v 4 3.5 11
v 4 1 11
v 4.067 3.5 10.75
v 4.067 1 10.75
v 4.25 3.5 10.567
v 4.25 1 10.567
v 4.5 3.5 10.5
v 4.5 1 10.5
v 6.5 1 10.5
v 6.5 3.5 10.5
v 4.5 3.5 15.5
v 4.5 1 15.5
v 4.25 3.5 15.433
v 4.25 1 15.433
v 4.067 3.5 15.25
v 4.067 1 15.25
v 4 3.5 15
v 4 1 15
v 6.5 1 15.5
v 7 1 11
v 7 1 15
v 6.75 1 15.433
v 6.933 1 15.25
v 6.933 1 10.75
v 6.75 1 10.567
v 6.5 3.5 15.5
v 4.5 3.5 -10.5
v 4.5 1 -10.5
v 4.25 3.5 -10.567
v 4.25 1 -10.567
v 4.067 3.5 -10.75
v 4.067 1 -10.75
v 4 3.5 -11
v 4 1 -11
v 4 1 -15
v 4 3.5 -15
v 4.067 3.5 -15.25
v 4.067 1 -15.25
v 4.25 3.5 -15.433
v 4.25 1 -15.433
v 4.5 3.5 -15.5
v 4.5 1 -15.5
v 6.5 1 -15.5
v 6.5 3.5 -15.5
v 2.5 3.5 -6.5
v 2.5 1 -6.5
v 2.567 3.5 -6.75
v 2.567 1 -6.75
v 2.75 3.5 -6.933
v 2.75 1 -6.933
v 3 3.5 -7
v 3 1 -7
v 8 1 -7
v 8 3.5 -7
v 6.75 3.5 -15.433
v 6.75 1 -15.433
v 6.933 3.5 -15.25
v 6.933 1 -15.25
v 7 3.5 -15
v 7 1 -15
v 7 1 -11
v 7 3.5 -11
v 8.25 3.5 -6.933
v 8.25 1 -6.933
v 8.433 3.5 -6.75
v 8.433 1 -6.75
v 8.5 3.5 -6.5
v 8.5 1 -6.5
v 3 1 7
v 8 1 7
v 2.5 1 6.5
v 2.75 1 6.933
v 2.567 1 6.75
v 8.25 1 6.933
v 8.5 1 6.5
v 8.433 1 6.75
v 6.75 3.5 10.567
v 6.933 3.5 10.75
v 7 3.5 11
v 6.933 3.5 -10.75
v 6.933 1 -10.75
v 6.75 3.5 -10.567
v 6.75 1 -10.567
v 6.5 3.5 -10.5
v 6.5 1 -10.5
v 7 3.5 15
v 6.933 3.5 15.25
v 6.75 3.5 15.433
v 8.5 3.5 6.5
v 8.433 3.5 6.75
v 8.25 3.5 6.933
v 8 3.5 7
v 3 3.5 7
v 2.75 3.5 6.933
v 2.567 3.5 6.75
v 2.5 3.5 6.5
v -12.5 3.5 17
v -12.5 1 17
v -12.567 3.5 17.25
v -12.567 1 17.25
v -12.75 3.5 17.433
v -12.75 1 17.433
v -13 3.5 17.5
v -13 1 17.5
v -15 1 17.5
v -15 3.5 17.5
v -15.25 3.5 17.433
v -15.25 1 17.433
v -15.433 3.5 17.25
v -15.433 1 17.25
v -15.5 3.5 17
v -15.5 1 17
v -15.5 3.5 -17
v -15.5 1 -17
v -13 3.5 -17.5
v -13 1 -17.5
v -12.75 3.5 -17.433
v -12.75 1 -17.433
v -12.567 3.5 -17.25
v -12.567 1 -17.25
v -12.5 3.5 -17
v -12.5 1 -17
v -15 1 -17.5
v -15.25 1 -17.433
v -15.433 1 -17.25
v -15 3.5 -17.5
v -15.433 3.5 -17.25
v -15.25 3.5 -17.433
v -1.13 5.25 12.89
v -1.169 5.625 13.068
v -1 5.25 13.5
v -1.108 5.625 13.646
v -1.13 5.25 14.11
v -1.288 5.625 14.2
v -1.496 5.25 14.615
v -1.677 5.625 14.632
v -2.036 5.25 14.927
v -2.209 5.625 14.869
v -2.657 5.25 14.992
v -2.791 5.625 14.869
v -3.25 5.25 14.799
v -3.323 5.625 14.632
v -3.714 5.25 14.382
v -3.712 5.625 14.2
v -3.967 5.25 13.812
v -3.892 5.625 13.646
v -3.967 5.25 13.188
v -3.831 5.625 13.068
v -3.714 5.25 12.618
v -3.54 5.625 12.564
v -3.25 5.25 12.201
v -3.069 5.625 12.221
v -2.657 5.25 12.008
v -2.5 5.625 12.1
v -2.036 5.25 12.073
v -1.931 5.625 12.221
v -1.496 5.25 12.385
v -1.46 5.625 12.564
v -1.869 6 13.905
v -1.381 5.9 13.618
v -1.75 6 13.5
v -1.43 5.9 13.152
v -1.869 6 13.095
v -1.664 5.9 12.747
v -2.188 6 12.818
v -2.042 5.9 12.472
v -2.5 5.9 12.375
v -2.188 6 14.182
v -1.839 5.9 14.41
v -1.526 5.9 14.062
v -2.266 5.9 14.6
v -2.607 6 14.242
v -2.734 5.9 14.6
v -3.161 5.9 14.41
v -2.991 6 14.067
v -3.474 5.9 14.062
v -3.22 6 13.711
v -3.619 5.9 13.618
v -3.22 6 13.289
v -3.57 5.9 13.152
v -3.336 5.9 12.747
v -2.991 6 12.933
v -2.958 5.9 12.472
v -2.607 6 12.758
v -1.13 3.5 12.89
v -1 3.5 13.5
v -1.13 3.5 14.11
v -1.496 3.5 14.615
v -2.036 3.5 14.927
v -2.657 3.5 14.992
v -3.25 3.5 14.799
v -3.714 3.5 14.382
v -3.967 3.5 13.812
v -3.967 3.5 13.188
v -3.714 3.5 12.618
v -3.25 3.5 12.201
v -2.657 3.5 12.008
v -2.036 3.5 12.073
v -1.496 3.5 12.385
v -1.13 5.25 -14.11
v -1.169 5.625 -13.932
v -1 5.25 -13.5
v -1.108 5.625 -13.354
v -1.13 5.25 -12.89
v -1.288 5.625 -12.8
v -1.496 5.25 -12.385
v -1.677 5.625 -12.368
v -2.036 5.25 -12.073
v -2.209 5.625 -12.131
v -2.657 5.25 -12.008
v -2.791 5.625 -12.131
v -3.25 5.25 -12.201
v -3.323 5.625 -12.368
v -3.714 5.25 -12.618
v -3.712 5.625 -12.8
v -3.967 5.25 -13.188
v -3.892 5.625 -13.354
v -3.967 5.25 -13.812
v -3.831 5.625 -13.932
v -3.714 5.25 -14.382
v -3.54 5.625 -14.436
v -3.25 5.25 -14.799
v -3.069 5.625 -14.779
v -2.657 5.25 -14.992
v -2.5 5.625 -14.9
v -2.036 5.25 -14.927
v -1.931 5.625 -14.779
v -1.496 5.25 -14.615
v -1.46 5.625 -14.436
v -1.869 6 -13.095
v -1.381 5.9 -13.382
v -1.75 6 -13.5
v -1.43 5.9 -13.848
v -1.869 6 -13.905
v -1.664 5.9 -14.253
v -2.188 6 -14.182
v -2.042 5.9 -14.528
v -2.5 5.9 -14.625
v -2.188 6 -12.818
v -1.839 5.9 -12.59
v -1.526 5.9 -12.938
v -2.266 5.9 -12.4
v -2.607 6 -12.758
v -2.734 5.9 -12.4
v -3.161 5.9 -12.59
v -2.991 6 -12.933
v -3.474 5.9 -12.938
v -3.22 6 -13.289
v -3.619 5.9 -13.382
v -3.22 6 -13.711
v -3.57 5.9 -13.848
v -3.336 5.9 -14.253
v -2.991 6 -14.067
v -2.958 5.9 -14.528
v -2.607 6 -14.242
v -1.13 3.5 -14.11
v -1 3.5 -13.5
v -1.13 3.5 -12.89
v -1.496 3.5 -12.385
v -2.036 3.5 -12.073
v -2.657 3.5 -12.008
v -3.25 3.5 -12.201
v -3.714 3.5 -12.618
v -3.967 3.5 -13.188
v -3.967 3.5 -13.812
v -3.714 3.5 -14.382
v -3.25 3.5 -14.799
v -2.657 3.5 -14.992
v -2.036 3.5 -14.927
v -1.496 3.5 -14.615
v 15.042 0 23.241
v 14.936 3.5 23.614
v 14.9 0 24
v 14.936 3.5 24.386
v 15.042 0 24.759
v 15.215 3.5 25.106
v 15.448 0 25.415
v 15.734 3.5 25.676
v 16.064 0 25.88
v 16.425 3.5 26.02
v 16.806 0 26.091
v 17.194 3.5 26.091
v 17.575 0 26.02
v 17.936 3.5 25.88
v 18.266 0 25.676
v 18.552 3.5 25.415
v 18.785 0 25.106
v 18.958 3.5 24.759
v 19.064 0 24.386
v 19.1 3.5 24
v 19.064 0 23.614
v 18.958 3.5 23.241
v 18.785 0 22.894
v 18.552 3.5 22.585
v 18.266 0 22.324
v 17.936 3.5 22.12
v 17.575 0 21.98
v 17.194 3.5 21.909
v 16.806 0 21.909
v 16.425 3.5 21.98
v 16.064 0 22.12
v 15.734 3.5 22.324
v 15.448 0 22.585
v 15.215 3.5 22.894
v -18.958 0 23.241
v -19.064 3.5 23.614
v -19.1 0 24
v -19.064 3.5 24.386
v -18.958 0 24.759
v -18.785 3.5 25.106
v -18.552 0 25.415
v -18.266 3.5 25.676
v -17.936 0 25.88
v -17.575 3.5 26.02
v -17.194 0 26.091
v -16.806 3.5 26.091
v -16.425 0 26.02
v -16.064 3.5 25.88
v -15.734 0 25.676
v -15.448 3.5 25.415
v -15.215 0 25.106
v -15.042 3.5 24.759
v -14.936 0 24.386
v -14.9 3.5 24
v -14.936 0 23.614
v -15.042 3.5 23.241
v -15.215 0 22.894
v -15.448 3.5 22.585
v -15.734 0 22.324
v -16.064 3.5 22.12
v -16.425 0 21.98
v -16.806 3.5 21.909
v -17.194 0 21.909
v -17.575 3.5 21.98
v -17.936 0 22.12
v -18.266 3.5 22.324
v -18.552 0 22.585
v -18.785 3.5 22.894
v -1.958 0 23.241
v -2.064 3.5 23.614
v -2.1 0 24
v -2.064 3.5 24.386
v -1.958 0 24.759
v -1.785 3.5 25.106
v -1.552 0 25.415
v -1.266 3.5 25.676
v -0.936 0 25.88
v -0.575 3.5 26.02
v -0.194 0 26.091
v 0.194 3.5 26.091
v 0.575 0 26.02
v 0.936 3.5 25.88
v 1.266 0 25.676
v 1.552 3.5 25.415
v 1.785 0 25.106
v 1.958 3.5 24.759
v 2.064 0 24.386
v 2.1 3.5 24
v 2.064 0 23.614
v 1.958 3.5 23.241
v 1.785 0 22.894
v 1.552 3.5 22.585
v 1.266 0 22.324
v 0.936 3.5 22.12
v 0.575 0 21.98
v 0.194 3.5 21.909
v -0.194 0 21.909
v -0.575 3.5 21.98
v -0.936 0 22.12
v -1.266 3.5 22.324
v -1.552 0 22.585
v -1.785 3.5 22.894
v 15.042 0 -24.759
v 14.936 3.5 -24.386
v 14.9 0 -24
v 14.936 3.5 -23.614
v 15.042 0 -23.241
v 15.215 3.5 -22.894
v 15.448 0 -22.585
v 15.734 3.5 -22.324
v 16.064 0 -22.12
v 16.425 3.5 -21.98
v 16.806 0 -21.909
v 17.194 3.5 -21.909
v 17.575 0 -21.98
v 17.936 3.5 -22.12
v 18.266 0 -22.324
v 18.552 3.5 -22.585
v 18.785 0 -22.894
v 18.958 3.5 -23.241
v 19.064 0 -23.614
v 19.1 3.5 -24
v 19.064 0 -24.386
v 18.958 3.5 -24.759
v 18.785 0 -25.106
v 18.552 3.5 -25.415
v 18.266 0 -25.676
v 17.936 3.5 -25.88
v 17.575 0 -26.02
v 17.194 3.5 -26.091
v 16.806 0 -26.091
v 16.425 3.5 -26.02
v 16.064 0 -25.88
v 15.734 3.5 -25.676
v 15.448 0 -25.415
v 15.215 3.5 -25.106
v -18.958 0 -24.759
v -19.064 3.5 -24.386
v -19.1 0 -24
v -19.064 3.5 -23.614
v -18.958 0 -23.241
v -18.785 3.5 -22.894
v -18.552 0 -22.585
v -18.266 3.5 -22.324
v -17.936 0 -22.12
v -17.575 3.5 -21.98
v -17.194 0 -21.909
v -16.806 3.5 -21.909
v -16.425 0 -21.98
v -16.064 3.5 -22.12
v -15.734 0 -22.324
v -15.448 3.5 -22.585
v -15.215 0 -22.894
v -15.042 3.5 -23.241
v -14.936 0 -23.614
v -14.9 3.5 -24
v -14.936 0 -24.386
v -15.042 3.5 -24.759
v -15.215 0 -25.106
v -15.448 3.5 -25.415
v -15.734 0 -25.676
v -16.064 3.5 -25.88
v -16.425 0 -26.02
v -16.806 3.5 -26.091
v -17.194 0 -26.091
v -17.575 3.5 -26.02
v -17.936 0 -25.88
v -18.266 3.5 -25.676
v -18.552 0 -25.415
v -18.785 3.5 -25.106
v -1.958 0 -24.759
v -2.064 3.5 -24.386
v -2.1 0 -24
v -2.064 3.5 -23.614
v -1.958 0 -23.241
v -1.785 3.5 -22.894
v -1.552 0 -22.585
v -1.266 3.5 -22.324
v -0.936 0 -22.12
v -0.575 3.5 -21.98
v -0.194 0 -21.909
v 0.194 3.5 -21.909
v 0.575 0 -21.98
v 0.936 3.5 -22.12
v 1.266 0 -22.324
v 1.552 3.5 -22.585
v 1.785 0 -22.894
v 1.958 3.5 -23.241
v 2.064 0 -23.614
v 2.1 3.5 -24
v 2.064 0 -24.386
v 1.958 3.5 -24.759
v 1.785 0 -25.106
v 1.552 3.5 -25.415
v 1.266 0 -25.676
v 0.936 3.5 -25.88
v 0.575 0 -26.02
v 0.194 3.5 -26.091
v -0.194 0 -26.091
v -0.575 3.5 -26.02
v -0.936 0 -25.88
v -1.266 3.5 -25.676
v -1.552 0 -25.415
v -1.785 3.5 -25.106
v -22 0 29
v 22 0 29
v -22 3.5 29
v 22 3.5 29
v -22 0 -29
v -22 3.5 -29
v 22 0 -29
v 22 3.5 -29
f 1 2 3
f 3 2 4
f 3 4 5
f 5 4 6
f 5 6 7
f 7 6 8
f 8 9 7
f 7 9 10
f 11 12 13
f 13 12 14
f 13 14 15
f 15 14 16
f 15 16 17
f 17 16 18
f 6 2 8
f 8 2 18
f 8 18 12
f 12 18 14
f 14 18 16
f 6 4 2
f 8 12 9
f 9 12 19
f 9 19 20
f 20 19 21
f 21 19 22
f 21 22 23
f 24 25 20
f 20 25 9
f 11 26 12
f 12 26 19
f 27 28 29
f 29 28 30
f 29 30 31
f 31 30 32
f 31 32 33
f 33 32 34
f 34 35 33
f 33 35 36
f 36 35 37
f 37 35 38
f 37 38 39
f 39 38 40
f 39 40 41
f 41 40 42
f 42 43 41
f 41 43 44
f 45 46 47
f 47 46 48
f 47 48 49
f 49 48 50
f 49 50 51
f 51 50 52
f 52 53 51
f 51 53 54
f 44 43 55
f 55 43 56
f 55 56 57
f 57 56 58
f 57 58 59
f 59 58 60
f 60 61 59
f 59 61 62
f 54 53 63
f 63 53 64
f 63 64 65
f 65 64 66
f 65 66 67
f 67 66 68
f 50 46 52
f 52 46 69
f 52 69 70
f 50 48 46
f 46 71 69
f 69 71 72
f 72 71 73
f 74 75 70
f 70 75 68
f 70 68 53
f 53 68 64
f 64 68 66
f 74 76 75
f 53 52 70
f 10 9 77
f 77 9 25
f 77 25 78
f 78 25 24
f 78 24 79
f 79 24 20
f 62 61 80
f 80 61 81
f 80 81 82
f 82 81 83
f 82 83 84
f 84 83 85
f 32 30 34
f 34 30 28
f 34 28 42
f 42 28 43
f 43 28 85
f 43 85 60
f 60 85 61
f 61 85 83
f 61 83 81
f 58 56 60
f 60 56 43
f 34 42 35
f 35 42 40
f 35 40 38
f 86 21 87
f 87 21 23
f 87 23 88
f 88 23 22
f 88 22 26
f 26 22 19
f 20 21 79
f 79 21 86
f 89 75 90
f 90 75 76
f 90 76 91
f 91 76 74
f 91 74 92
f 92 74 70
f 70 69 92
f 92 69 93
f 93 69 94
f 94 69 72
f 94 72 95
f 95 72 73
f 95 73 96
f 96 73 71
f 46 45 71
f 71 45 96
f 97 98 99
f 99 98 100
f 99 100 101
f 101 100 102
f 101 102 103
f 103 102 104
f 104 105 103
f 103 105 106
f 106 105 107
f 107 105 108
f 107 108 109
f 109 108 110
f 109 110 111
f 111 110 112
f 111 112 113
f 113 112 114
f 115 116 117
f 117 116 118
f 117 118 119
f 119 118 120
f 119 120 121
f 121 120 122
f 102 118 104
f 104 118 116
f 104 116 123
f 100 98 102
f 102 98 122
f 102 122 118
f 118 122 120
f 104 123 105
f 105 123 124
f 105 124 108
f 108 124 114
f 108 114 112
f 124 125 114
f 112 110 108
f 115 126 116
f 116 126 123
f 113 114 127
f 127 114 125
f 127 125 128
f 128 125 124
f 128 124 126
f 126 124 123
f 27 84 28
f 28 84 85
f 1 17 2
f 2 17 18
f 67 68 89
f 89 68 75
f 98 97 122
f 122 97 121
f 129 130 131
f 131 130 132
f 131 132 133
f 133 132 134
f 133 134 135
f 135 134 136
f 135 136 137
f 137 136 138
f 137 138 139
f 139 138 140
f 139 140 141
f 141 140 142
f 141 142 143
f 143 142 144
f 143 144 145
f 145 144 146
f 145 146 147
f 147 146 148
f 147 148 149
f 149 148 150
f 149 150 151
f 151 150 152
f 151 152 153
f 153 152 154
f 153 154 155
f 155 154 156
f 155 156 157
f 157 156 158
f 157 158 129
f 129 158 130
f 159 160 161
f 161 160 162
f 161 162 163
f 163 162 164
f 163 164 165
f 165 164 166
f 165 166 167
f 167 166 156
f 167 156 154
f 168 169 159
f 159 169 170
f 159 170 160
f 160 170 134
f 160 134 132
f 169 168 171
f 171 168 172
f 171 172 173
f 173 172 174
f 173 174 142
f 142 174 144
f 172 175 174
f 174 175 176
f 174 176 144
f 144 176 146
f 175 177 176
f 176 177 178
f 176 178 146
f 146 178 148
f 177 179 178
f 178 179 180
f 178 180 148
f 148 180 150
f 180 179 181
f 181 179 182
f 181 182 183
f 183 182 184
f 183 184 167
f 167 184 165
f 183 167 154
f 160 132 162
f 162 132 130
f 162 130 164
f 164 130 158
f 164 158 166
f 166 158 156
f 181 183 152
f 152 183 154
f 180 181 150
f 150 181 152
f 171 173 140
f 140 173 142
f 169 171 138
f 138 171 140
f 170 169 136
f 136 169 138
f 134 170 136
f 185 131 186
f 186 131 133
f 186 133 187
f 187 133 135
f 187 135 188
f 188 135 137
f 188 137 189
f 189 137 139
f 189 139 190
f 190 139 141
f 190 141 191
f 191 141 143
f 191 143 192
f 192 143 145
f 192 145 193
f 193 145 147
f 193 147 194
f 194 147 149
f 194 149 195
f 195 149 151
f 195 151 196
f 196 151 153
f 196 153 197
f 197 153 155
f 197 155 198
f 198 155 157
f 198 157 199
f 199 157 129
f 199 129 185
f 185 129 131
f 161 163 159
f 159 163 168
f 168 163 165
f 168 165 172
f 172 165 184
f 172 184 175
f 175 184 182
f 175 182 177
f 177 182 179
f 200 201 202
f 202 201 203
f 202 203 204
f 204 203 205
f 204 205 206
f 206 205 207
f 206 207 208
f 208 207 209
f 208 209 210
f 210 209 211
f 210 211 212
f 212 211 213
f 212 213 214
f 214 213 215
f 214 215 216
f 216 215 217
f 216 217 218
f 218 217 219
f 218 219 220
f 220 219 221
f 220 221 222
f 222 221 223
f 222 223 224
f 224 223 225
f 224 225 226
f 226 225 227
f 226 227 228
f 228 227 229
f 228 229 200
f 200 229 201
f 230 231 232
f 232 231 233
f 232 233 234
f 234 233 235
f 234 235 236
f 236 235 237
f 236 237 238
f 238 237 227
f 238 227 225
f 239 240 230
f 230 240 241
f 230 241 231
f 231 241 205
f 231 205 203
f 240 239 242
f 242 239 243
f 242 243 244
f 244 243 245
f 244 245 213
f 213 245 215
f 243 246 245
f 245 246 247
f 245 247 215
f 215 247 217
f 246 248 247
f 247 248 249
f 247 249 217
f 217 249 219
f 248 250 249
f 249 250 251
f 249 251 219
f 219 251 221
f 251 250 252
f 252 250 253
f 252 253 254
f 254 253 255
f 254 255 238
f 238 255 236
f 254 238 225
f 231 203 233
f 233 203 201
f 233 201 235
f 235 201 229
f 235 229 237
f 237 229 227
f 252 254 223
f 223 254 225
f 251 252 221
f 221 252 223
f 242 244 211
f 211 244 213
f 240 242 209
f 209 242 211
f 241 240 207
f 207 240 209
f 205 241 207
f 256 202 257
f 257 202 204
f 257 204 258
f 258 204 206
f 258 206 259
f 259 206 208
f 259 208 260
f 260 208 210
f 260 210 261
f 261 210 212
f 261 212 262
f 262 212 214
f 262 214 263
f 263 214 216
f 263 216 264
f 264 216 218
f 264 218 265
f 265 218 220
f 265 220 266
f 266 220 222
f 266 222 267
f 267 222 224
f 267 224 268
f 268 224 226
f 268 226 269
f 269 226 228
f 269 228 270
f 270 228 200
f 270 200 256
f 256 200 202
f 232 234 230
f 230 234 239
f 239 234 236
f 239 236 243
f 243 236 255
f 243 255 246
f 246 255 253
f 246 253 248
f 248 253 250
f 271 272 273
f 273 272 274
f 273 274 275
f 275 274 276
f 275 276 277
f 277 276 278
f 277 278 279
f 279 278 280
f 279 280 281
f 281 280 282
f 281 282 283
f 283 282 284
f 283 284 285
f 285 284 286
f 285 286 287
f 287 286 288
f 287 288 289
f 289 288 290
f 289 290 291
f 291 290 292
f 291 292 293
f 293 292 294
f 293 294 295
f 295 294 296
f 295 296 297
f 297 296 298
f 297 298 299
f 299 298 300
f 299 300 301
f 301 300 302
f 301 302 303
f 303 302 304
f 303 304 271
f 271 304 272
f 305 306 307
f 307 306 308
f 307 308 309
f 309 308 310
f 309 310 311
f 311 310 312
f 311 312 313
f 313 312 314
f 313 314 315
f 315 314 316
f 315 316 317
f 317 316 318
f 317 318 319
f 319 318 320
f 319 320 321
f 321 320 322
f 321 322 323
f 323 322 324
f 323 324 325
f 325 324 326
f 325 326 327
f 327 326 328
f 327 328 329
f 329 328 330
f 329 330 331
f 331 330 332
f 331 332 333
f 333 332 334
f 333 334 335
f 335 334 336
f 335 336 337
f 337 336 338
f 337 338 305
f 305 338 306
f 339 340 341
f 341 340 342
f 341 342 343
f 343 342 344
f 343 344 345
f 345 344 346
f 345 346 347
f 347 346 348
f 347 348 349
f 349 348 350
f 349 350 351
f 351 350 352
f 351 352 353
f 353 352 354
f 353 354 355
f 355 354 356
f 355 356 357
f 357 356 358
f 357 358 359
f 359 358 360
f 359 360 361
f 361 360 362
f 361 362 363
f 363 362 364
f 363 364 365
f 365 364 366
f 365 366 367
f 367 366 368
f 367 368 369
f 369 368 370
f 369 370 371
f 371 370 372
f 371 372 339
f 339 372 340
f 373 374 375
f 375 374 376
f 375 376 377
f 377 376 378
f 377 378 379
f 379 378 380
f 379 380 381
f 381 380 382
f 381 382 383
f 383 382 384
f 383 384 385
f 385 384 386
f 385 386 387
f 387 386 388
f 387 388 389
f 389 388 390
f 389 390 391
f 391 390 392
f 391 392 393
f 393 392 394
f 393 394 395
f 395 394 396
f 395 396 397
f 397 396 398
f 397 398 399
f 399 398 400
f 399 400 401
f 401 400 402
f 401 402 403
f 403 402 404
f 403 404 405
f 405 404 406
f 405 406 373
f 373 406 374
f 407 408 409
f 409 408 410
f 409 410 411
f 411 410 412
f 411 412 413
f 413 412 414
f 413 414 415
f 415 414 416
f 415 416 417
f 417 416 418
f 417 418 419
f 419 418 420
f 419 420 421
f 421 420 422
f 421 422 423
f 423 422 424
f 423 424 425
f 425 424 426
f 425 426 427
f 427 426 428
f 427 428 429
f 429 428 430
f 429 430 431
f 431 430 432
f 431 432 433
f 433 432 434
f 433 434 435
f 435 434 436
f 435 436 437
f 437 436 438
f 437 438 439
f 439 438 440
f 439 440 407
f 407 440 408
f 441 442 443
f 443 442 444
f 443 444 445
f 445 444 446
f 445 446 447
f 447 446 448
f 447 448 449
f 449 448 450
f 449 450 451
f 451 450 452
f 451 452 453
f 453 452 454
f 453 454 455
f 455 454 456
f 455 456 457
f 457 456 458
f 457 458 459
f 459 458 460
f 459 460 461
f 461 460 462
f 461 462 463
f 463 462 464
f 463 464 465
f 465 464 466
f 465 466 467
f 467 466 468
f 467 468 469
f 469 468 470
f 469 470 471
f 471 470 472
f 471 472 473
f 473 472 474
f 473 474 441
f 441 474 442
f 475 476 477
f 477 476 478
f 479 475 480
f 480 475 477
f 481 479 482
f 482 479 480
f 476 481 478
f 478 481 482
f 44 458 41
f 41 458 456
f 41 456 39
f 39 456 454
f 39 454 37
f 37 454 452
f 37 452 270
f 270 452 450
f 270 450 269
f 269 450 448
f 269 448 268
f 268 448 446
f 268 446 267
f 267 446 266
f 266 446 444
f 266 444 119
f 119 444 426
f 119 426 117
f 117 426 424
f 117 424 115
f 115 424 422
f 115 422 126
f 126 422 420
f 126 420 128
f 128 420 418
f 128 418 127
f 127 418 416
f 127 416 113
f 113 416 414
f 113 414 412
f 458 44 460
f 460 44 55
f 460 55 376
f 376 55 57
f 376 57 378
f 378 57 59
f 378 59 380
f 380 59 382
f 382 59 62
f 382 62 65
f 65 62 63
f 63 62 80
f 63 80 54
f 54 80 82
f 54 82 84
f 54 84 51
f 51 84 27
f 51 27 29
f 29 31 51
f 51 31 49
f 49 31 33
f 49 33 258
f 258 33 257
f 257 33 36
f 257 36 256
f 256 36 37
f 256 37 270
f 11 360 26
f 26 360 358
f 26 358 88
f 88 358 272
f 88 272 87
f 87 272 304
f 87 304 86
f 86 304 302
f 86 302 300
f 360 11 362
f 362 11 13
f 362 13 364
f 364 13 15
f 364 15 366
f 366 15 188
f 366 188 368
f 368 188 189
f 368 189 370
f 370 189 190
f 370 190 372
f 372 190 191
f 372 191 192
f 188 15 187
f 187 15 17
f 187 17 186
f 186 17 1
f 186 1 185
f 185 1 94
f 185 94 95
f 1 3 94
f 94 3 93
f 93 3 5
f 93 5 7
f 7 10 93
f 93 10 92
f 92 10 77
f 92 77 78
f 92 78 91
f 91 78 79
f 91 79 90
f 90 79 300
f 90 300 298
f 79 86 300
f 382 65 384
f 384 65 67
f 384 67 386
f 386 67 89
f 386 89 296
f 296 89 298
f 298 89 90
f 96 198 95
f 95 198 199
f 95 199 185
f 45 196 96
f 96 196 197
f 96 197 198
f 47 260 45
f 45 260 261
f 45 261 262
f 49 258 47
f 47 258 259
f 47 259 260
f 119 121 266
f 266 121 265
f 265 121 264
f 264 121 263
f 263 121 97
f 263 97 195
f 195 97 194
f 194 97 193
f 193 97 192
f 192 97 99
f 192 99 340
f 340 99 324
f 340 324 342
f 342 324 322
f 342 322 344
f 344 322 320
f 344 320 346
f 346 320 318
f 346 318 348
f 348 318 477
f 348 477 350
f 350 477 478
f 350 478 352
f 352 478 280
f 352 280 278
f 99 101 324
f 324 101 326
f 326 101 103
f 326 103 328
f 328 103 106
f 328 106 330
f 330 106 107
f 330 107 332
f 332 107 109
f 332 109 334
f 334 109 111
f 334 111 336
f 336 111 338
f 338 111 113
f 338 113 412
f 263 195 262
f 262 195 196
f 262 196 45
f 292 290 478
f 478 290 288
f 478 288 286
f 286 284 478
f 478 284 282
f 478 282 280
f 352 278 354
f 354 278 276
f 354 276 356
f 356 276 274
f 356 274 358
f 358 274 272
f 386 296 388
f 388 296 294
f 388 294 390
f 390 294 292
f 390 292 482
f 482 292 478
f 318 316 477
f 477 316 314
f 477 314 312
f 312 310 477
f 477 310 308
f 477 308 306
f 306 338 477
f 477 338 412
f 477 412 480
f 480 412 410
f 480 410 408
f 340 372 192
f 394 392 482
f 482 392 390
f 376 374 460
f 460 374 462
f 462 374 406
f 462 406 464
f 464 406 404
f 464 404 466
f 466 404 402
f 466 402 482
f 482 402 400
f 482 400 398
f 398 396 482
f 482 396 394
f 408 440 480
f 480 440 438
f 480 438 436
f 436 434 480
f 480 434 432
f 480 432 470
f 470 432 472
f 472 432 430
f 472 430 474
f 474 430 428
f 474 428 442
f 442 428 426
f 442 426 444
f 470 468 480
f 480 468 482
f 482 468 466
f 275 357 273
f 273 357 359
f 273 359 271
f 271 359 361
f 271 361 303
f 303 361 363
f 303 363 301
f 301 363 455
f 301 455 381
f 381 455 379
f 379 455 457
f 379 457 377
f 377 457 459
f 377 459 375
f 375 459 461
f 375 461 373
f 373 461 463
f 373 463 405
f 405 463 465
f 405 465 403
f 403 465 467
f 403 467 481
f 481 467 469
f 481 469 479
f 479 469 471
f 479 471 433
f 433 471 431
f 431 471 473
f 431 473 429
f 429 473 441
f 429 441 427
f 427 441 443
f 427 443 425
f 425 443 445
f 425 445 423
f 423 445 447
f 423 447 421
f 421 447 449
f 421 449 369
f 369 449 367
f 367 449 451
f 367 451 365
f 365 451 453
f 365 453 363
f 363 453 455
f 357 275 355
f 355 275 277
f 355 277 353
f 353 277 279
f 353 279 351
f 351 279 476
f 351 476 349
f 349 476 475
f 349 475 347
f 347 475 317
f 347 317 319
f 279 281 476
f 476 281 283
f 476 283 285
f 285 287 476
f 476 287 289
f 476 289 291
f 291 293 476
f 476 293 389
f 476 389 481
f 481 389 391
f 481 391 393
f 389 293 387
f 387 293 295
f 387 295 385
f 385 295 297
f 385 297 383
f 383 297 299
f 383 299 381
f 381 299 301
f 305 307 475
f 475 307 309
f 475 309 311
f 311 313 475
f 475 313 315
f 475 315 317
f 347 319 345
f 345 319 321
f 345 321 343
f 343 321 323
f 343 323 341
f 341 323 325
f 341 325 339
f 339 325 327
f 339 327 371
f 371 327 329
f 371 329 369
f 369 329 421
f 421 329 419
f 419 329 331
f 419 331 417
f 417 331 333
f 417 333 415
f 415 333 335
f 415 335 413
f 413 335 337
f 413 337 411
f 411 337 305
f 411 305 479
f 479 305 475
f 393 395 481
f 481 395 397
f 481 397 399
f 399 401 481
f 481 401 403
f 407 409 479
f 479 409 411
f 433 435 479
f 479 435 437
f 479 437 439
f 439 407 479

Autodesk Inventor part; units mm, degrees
ref_plane "YZ Plane" through (0, 0, 0) normal (1, 0, 0) x (0, 1, 0)
ref_plane "XZ Plane" through (0, 0, 0) normal (0, 1, 0) x (-1, 0, 0)
ref_plane "XY Plane" through (0, 0, 0) normal (0, 0, 1) x (1, 0, 0)
sketch "Sketch1" plane through (0, 0, 0) normal (0, 1, 0) x (-1, 0, 0)
  line L0 (22, 29) -> (-22, 29)
  line L1 (-22, 29) -> (-22, -29)
  line L2 (-22, -29) -> (22, -29)
  line L3 (22, -29) -> (22, 29)
  point P0 (0, 0)
  point P1 (0, -29)
  dimension "d2" = 44
  dimension "d3" = 58
extrude "Extrusion1" add sketch "Sketch1" along normal blind 3.5
sketch "Sketch2" plane through (0, 3.5, 0) normal (0, 1, 0) x (1, 0, 0)
  line L0 (0, 40.6) -> (0, -40.6) projected
  line L1 (22, 29) -> (-22, 29) projected
  point P0 (0, 0)
  point P1 (0, 24)
  dimension "d22" = 5
hole "Hole1" at (0, 3.5, -24) direction (0, -1, 0) diameter 4.2 end through all
pattern_linear "Rectangular Pattern1" count 2 spacing 17 along (-1, 0, 0) count 2 spacing 17 along (1, 0, 0) of "Hole1"
mirror "Mirror1" about plane through (0, 0, 0) normal (0, 0, 1) of "Hole1", "Rectangular Pattern1"
sketch "Sketch3" plane through (0, 3.5, 0) normal (0, 1, 0) x (1, 0, 0)
  circle A0 centre (-2.5, 13.5) radius 1.5
  line L0 (0, 40.6) -> (0, -40.6) projected
  line L1 (-30.8, 0) -> (30.8, 0) projected
  circle A1 centre (-2.5, -13.5) radius 1.5
  point P0 (0, 0)
  dimension "d29" = 3
  dimension "d30" = 2.5
  dimension "d31" = 13.5
extrude "Extrusion2" add sketch "Sketch3" along normal blind 2.5
fillet "Fillet1" radius 0.75 2 edges at (-4, 6, -13.5) (-4, 6, 13.5)
sketch "Sketch4" plane through (0, 0, 0) normal (0, 0, 1) x (1, 0, 0)
  line L0 (-15.5, 3.5) -> (-12.5, 3.5)
  line L1 (-12.5, 3.5) -> (-12.5, 1)
  line L2 (-12.5, 1) -> (-15.5, 1)
  line L3 (-15.5, 1) -> (-15.5, 3.5)
  line L4 (-22, 3.5) -> (22, 3.5) projected
  point P0 (0, 0)
  point P1 (0, 3.5)
  point P2 (-14, 3.5)
  dimension "d35" = 2.5
  dimension "d36" = 3
  dimension "d39" = 14
extrude "Extrusion3" cut sketch "Sketch4" along normal mid plane 35
sketch "Sketch5" plane through (0, 0, 0) normal (0, 0, 1) x (1, 0, 0)
  line L0 (2.5, 3.5) -> (8.5, 3.5)
  line L1 (8.5, 3.5) -> (8.5, 1)
  line L2 (8.5, 1) -> (2.5, 1)
  line L3 (2.5, 1) -> (2.5, 3.5)
  line L4 (-22, 3.5) -> (22, 3.5) projected
  line L5 (-2.5, 7.2) -> (-2.5, -1.2) projected
  point P0 (0, 0)
  point P1 (5.5, 3.5)
  dimension "d40" = 6
  dimension "d41" = 2.5
  dimension "d42" = 8
extrude "Extrusion4" cut sketch "Sketch5" along normal mid plane 14
sketch "Sketch6" plane through (0, 3.5, 0) normal (0, 1, 0) x (1, 0, 0)
  line L0 (7, -10.5) -> (4, -10.5)
  line L1 (4, -10.5) -> (4, -15.5)
  line L2 (4, -15.5) -> (7, -15.5)
  line L3 (7, -15.5) -> (7, -10.5)
  line L4 (8.5, 7) -> (8.5, -7) projected
  line L5 (8.5, -7) -> (2.5, -7) projected
  point P0 (0, 0)
  point P1 (5.5, -10.5)
  dimension "d45" = 3
  dimension "d46" = 5
  dimension "d47" = 3
  dimension "d48" = 3.5
extrude "Extrusion5" cut sketch "Sketch6" against normal blind 2.5
mirror "Mirror2" about plane through (0, 0, 0) normal (0, 0, 1) of "Extrusion5"
fillet "Fillet2" radius 0.5 16 edges at (-15.5, 2.25, -17.5) (-12.5, 2.25, -17.5) (-15.5, 2.25, 17.5) (-12.5, 2.25, 17.5) (2.5, 2.25, 7) (8.5, 2.25, 7) (7, 2.25, 15.5) (7, 2.25, -10.5) (7, 2.25, 10.5) (8.5, 2.25, -7) (7, 2.25, -15.5) (2.5, 2.25, -7) (4, 2.25, -15.5) (4, 2.25, -10.5) (4, 2.25, 15.5) (4, 2.25, 10.5)
properties part number "connector-houseing-bottom-plate"
